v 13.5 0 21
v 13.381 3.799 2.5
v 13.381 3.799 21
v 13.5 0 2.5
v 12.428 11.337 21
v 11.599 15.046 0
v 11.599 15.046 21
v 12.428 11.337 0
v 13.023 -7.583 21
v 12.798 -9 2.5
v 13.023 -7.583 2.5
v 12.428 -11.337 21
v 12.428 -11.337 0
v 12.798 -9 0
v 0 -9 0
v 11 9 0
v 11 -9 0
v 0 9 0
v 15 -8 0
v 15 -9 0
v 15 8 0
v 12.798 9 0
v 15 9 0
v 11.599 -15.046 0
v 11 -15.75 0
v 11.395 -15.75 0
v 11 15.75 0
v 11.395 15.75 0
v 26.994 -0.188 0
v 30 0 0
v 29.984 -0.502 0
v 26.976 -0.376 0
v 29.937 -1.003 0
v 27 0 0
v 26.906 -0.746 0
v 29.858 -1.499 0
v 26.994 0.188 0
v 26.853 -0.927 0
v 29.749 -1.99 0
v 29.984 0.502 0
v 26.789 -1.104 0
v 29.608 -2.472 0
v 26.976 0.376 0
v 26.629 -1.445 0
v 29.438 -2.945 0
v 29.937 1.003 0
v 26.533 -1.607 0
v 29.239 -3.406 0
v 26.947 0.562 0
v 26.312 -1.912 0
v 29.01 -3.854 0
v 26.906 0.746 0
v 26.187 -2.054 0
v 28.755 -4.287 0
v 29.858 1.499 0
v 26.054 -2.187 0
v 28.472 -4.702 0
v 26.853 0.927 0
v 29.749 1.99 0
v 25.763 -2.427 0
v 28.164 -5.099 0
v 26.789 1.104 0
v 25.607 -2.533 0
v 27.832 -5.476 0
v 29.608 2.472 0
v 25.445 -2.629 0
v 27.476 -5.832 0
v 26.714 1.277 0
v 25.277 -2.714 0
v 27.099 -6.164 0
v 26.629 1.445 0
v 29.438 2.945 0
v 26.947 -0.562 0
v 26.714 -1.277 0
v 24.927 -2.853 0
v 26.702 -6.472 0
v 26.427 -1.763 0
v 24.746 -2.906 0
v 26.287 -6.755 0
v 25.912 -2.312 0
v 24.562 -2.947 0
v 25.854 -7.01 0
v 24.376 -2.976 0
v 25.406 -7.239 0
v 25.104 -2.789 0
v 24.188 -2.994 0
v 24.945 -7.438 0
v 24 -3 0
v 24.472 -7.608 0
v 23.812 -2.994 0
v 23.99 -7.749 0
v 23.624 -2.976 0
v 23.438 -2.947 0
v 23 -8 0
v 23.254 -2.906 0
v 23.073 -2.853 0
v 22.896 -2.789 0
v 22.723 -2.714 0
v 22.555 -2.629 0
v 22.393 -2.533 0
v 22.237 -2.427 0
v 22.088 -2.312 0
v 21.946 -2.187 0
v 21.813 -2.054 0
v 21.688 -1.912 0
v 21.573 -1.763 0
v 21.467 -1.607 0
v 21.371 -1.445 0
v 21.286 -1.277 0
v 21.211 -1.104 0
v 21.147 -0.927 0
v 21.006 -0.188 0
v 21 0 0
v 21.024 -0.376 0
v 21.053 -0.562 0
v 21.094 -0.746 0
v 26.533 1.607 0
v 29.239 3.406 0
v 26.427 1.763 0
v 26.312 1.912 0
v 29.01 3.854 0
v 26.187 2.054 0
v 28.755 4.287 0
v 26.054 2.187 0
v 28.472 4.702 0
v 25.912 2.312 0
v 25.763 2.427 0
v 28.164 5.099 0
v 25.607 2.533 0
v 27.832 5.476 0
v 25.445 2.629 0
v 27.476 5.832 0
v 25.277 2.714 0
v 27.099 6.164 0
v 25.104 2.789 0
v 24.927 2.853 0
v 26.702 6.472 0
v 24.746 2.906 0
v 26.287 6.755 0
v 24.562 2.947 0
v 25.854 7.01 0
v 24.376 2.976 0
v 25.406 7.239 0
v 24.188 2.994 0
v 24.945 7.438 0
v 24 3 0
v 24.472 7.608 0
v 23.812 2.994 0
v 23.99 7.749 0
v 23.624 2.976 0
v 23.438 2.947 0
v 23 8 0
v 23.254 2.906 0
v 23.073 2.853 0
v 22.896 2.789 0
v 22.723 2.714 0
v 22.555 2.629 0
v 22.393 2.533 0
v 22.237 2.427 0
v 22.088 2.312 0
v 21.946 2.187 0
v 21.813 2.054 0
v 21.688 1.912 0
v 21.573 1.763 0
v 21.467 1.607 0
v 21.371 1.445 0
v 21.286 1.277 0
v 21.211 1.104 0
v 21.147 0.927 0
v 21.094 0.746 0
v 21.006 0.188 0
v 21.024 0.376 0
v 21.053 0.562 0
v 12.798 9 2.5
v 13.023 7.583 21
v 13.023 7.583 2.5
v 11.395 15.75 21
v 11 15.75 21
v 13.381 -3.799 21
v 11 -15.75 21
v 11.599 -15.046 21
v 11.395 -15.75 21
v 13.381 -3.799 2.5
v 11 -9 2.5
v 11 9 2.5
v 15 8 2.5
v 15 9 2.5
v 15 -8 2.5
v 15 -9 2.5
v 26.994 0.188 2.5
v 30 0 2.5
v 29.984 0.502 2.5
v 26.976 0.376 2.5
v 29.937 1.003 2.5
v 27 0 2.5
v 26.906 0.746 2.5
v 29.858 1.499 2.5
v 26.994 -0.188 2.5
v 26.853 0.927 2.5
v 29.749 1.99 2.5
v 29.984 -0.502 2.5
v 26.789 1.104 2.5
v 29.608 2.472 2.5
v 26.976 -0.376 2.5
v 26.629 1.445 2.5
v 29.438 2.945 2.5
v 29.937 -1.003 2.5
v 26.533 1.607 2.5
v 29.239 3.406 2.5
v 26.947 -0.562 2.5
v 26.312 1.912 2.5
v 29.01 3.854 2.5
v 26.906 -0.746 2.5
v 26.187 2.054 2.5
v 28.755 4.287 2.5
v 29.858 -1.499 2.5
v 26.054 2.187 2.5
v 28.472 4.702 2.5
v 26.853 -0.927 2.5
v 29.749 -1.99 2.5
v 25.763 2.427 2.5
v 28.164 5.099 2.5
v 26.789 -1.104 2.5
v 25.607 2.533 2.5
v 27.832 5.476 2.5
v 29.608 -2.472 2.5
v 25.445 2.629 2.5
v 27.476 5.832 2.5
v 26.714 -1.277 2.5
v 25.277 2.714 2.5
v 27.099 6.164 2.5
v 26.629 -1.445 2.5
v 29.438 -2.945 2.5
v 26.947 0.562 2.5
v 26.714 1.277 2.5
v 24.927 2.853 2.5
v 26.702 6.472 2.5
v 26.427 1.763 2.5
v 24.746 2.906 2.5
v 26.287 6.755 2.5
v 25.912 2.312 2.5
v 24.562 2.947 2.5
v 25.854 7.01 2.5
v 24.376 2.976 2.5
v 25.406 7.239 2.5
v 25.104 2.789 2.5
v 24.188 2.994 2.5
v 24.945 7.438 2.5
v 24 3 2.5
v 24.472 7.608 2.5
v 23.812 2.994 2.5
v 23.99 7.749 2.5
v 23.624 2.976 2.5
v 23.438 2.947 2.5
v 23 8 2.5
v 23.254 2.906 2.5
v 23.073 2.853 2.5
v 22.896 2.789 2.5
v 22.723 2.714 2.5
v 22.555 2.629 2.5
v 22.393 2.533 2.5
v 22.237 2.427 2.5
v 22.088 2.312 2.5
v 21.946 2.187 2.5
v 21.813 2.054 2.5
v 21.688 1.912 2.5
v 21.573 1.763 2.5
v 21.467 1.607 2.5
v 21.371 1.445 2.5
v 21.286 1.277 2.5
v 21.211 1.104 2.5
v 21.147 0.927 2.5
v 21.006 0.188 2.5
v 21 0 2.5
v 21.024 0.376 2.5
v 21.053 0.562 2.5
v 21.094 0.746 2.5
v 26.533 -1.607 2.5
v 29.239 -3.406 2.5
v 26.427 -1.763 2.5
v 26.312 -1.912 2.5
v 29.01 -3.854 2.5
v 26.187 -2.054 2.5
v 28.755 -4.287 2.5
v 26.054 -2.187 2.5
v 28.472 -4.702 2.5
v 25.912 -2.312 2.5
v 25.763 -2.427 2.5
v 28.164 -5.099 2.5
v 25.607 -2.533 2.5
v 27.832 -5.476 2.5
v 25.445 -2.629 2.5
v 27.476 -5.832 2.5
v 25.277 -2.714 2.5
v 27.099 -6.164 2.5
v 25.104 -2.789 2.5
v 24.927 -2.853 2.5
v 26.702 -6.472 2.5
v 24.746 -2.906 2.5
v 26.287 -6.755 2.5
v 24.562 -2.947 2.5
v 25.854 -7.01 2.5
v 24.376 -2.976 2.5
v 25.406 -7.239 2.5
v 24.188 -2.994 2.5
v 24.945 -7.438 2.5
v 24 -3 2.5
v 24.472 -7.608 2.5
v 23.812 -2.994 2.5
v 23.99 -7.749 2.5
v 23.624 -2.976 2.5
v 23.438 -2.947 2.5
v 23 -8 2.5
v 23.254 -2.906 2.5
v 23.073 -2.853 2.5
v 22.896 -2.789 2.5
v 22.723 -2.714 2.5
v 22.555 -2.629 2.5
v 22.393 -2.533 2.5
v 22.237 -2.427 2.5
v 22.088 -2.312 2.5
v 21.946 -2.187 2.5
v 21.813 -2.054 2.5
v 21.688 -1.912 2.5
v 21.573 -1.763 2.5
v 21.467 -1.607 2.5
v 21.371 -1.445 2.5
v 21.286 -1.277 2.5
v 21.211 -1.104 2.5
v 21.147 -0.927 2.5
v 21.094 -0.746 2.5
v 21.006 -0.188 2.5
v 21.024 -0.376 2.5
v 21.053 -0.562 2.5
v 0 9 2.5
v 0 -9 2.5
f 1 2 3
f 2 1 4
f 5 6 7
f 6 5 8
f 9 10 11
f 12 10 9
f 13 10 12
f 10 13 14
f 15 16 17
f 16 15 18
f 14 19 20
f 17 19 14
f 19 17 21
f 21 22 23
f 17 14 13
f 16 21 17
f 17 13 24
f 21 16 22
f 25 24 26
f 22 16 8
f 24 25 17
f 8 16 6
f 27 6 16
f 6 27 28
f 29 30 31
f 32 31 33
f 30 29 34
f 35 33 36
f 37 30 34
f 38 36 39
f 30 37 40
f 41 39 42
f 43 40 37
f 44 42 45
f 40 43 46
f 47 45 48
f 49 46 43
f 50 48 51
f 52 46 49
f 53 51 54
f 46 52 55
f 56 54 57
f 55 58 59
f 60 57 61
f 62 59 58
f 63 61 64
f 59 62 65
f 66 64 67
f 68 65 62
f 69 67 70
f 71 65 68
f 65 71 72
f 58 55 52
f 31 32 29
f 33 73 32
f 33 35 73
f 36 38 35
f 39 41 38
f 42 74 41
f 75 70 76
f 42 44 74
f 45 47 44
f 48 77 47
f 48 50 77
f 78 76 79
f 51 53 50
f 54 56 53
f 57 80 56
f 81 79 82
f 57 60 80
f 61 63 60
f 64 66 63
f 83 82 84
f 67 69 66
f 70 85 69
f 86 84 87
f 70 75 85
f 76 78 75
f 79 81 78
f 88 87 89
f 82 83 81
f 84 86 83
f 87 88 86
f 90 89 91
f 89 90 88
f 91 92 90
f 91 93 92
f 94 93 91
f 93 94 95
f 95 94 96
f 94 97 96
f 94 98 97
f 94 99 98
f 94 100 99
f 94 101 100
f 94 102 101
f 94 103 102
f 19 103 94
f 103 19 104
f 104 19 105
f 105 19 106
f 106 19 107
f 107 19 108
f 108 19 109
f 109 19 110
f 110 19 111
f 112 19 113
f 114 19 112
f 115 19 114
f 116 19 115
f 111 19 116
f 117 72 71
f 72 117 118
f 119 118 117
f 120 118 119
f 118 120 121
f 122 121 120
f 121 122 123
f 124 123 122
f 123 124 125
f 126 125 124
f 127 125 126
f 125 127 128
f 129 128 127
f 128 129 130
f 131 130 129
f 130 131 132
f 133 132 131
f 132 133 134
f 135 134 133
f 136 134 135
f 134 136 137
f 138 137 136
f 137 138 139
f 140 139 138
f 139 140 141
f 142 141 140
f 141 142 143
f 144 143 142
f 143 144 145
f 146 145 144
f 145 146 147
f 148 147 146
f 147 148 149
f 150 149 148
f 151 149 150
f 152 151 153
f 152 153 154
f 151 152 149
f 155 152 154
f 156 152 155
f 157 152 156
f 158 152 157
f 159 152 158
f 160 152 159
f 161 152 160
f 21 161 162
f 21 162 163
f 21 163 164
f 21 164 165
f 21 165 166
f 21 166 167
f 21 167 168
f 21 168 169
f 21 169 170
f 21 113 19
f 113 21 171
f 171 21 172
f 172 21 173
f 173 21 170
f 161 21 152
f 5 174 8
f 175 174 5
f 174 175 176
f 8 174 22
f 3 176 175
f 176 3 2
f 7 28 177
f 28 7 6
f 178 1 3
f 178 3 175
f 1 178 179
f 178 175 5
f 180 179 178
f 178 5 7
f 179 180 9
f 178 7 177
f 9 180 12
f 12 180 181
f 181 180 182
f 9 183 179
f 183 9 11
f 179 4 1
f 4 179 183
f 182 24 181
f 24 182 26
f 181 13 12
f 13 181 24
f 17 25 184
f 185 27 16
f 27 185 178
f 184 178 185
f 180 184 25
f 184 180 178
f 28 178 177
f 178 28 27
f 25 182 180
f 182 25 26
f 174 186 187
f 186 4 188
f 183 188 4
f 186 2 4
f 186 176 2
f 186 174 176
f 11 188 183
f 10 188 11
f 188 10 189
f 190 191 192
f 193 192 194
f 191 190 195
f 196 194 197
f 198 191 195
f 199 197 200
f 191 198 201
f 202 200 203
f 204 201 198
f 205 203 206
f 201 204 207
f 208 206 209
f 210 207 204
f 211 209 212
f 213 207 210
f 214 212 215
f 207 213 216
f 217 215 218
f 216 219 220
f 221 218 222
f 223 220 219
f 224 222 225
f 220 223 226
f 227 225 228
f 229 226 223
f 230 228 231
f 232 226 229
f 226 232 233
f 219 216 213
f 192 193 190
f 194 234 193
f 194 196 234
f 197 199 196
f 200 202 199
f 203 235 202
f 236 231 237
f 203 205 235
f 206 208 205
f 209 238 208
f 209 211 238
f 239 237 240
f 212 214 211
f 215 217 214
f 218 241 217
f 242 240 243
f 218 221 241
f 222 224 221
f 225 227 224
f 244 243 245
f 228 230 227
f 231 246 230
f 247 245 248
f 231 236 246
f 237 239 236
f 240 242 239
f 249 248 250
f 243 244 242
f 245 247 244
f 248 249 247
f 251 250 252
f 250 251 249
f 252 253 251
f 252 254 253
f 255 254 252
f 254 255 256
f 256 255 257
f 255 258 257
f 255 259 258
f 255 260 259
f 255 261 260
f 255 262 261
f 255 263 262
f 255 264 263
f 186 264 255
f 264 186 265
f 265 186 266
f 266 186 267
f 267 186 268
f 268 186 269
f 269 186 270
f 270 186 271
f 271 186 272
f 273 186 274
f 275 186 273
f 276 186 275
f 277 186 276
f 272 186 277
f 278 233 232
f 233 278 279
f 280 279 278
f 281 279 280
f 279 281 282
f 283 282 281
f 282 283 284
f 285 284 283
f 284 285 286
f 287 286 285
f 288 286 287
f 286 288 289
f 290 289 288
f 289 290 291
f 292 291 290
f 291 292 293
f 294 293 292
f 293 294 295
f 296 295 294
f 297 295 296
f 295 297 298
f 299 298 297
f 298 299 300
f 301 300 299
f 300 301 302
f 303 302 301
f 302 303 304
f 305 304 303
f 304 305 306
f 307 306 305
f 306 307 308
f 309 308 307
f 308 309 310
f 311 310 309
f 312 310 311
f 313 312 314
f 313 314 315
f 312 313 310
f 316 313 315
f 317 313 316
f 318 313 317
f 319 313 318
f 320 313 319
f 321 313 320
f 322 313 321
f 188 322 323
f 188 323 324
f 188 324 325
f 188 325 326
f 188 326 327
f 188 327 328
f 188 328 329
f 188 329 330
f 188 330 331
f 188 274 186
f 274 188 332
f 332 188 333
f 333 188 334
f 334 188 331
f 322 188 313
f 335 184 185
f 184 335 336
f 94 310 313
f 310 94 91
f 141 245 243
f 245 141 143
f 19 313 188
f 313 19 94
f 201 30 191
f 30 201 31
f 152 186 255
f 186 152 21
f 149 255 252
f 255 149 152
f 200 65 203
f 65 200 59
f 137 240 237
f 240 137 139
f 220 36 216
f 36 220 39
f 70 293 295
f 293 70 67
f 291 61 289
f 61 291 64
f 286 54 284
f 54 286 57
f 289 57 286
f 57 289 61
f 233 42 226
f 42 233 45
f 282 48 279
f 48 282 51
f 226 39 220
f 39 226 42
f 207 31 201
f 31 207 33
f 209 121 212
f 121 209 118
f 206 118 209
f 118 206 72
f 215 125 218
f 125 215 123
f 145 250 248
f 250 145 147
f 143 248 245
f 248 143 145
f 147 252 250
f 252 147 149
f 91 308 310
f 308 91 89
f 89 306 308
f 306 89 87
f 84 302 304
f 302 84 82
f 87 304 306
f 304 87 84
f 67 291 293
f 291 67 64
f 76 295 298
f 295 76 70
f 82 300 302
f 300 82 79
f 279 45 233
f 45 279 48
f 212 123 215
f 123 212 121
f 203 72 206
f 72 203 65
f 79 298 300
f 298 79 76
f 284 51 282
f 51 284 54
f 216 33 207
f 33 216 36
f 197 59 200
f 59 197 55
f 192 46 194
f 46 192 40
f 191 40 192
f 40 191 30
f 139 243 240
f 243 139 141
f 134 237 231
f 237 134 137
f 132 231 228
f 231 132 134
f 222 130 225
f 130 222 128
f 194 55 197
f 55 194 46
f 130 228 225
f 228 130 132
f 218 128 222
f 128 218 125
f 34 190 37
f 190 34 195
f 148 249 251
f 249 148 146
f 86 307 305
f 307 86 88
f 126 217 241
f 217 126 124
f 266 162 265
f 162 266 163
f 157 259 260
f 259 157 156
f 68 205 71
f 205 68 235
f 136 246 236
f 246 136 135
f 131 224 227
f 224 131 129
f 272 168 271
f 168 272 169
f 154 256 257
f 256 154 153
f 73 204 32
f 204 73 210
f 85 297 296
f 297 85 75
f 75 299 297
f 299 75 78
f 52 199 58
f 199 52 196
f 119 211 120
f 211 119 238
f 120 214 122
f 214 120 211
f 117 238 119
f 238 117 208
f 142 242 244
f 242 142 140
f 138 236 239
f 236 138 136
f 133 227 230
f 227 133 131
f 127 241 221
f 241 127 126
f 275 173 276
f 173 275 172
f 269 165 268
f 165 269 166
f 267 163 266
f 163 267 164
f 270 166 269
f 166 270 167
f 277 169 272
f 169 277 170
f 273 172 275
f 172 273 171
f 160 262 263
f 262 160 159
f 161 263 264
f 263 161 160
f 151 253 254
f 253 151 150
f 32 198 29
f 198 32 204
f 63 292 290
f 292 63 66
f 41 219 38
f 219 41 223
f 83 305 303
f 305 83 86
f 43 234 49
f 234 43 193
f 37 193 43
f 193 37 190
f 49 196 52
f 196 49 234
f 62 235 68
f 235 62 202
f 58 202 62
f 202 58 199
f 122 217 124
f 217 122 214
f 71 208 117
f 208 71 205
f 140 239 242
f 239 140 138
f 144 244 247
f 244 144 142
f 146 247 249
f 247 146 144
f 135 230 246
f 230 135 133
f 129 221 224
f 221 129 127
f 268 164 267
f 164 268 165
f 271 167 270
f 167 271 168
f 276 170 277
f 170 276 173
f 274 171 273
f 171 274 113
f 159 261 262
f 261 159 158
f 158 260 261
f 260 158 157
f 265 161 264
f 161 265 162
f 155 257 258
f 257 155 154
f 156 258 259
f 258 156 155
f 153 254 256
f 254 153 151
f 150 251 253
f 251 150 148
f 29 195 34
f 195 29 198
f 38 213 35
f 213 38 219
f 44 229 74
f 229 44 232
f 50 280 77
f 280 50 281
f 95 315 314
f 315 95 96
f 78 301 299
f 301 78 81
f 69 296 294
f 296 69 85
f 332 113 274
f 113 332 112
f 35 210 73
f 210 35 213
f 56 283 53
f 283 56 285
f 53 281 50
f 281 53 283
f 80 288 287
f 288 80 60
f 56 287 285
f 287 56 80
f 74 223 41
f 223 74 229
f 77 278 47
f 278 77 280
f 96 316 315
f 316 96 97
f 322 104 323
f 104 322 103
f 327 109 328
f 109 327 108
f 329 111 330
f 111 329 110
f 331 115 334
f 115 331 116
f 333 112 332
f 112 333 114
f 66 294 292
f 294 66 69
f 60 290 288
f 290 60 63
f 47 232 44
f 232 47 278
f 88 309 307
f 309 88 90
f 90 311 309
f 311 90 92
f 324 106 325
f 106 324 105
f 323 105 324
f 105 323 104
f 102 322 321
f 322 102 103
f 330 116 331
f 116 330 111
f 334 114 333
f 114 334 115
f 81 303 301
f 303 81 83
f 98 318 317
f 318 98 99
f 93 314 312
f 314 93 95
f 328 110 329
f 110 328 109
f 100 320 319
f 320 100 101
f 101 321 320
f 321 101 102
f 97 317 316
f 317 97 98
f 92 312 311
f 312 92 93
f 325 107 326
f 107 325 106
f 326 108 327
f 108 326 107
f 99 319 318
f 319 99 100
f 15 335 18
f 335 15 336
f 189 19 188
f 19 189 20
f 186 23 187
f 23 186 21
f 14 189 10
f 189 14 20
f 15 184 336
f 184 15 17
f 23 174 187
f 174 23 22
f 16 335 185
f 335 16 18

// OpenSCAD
// Medify - Drawer (Narrow Fit - 22.5mm)
$fn = 100;

d_width = 18;  // קוצר לרוחב החור הפנימי (23 מ"מ פחות מרווח)
d_length = 15;   
f_height = 21;   
f_width = 31.5;  // הפקק החיצוני נשאר רחב כדי לאטום את החור
wall = 2.5;      

union() {
    // 1. רצפת המגירה (עכשיו ברוחב התואם לקירות התהום)
    translate([0, -d_width/2, 0]) cube([d_length, d_width, wall]);

    // 2. קיר האטימה הקדמי
    translate([d_length - 1, 0, f_height/2]) 
    intersection() {
        translate([-61, 0, 0]) cylinder(h = f_height, r = 60.5, center = true);
        cube([6, f_width, f_height], center = true);
    }
    
    // 3. ידית משיכה
    translate([d_length + 3, 0, wall/2])
    difference() {
        hull() { cube([10, 16, wall], center = true); translate([4, 0, 0]) cylinder(h = wall, r = 8, center = true); }
        translate([6, 0, 0]) cylinder(h = wall + 2, r = 3, center = true);
    }
}
